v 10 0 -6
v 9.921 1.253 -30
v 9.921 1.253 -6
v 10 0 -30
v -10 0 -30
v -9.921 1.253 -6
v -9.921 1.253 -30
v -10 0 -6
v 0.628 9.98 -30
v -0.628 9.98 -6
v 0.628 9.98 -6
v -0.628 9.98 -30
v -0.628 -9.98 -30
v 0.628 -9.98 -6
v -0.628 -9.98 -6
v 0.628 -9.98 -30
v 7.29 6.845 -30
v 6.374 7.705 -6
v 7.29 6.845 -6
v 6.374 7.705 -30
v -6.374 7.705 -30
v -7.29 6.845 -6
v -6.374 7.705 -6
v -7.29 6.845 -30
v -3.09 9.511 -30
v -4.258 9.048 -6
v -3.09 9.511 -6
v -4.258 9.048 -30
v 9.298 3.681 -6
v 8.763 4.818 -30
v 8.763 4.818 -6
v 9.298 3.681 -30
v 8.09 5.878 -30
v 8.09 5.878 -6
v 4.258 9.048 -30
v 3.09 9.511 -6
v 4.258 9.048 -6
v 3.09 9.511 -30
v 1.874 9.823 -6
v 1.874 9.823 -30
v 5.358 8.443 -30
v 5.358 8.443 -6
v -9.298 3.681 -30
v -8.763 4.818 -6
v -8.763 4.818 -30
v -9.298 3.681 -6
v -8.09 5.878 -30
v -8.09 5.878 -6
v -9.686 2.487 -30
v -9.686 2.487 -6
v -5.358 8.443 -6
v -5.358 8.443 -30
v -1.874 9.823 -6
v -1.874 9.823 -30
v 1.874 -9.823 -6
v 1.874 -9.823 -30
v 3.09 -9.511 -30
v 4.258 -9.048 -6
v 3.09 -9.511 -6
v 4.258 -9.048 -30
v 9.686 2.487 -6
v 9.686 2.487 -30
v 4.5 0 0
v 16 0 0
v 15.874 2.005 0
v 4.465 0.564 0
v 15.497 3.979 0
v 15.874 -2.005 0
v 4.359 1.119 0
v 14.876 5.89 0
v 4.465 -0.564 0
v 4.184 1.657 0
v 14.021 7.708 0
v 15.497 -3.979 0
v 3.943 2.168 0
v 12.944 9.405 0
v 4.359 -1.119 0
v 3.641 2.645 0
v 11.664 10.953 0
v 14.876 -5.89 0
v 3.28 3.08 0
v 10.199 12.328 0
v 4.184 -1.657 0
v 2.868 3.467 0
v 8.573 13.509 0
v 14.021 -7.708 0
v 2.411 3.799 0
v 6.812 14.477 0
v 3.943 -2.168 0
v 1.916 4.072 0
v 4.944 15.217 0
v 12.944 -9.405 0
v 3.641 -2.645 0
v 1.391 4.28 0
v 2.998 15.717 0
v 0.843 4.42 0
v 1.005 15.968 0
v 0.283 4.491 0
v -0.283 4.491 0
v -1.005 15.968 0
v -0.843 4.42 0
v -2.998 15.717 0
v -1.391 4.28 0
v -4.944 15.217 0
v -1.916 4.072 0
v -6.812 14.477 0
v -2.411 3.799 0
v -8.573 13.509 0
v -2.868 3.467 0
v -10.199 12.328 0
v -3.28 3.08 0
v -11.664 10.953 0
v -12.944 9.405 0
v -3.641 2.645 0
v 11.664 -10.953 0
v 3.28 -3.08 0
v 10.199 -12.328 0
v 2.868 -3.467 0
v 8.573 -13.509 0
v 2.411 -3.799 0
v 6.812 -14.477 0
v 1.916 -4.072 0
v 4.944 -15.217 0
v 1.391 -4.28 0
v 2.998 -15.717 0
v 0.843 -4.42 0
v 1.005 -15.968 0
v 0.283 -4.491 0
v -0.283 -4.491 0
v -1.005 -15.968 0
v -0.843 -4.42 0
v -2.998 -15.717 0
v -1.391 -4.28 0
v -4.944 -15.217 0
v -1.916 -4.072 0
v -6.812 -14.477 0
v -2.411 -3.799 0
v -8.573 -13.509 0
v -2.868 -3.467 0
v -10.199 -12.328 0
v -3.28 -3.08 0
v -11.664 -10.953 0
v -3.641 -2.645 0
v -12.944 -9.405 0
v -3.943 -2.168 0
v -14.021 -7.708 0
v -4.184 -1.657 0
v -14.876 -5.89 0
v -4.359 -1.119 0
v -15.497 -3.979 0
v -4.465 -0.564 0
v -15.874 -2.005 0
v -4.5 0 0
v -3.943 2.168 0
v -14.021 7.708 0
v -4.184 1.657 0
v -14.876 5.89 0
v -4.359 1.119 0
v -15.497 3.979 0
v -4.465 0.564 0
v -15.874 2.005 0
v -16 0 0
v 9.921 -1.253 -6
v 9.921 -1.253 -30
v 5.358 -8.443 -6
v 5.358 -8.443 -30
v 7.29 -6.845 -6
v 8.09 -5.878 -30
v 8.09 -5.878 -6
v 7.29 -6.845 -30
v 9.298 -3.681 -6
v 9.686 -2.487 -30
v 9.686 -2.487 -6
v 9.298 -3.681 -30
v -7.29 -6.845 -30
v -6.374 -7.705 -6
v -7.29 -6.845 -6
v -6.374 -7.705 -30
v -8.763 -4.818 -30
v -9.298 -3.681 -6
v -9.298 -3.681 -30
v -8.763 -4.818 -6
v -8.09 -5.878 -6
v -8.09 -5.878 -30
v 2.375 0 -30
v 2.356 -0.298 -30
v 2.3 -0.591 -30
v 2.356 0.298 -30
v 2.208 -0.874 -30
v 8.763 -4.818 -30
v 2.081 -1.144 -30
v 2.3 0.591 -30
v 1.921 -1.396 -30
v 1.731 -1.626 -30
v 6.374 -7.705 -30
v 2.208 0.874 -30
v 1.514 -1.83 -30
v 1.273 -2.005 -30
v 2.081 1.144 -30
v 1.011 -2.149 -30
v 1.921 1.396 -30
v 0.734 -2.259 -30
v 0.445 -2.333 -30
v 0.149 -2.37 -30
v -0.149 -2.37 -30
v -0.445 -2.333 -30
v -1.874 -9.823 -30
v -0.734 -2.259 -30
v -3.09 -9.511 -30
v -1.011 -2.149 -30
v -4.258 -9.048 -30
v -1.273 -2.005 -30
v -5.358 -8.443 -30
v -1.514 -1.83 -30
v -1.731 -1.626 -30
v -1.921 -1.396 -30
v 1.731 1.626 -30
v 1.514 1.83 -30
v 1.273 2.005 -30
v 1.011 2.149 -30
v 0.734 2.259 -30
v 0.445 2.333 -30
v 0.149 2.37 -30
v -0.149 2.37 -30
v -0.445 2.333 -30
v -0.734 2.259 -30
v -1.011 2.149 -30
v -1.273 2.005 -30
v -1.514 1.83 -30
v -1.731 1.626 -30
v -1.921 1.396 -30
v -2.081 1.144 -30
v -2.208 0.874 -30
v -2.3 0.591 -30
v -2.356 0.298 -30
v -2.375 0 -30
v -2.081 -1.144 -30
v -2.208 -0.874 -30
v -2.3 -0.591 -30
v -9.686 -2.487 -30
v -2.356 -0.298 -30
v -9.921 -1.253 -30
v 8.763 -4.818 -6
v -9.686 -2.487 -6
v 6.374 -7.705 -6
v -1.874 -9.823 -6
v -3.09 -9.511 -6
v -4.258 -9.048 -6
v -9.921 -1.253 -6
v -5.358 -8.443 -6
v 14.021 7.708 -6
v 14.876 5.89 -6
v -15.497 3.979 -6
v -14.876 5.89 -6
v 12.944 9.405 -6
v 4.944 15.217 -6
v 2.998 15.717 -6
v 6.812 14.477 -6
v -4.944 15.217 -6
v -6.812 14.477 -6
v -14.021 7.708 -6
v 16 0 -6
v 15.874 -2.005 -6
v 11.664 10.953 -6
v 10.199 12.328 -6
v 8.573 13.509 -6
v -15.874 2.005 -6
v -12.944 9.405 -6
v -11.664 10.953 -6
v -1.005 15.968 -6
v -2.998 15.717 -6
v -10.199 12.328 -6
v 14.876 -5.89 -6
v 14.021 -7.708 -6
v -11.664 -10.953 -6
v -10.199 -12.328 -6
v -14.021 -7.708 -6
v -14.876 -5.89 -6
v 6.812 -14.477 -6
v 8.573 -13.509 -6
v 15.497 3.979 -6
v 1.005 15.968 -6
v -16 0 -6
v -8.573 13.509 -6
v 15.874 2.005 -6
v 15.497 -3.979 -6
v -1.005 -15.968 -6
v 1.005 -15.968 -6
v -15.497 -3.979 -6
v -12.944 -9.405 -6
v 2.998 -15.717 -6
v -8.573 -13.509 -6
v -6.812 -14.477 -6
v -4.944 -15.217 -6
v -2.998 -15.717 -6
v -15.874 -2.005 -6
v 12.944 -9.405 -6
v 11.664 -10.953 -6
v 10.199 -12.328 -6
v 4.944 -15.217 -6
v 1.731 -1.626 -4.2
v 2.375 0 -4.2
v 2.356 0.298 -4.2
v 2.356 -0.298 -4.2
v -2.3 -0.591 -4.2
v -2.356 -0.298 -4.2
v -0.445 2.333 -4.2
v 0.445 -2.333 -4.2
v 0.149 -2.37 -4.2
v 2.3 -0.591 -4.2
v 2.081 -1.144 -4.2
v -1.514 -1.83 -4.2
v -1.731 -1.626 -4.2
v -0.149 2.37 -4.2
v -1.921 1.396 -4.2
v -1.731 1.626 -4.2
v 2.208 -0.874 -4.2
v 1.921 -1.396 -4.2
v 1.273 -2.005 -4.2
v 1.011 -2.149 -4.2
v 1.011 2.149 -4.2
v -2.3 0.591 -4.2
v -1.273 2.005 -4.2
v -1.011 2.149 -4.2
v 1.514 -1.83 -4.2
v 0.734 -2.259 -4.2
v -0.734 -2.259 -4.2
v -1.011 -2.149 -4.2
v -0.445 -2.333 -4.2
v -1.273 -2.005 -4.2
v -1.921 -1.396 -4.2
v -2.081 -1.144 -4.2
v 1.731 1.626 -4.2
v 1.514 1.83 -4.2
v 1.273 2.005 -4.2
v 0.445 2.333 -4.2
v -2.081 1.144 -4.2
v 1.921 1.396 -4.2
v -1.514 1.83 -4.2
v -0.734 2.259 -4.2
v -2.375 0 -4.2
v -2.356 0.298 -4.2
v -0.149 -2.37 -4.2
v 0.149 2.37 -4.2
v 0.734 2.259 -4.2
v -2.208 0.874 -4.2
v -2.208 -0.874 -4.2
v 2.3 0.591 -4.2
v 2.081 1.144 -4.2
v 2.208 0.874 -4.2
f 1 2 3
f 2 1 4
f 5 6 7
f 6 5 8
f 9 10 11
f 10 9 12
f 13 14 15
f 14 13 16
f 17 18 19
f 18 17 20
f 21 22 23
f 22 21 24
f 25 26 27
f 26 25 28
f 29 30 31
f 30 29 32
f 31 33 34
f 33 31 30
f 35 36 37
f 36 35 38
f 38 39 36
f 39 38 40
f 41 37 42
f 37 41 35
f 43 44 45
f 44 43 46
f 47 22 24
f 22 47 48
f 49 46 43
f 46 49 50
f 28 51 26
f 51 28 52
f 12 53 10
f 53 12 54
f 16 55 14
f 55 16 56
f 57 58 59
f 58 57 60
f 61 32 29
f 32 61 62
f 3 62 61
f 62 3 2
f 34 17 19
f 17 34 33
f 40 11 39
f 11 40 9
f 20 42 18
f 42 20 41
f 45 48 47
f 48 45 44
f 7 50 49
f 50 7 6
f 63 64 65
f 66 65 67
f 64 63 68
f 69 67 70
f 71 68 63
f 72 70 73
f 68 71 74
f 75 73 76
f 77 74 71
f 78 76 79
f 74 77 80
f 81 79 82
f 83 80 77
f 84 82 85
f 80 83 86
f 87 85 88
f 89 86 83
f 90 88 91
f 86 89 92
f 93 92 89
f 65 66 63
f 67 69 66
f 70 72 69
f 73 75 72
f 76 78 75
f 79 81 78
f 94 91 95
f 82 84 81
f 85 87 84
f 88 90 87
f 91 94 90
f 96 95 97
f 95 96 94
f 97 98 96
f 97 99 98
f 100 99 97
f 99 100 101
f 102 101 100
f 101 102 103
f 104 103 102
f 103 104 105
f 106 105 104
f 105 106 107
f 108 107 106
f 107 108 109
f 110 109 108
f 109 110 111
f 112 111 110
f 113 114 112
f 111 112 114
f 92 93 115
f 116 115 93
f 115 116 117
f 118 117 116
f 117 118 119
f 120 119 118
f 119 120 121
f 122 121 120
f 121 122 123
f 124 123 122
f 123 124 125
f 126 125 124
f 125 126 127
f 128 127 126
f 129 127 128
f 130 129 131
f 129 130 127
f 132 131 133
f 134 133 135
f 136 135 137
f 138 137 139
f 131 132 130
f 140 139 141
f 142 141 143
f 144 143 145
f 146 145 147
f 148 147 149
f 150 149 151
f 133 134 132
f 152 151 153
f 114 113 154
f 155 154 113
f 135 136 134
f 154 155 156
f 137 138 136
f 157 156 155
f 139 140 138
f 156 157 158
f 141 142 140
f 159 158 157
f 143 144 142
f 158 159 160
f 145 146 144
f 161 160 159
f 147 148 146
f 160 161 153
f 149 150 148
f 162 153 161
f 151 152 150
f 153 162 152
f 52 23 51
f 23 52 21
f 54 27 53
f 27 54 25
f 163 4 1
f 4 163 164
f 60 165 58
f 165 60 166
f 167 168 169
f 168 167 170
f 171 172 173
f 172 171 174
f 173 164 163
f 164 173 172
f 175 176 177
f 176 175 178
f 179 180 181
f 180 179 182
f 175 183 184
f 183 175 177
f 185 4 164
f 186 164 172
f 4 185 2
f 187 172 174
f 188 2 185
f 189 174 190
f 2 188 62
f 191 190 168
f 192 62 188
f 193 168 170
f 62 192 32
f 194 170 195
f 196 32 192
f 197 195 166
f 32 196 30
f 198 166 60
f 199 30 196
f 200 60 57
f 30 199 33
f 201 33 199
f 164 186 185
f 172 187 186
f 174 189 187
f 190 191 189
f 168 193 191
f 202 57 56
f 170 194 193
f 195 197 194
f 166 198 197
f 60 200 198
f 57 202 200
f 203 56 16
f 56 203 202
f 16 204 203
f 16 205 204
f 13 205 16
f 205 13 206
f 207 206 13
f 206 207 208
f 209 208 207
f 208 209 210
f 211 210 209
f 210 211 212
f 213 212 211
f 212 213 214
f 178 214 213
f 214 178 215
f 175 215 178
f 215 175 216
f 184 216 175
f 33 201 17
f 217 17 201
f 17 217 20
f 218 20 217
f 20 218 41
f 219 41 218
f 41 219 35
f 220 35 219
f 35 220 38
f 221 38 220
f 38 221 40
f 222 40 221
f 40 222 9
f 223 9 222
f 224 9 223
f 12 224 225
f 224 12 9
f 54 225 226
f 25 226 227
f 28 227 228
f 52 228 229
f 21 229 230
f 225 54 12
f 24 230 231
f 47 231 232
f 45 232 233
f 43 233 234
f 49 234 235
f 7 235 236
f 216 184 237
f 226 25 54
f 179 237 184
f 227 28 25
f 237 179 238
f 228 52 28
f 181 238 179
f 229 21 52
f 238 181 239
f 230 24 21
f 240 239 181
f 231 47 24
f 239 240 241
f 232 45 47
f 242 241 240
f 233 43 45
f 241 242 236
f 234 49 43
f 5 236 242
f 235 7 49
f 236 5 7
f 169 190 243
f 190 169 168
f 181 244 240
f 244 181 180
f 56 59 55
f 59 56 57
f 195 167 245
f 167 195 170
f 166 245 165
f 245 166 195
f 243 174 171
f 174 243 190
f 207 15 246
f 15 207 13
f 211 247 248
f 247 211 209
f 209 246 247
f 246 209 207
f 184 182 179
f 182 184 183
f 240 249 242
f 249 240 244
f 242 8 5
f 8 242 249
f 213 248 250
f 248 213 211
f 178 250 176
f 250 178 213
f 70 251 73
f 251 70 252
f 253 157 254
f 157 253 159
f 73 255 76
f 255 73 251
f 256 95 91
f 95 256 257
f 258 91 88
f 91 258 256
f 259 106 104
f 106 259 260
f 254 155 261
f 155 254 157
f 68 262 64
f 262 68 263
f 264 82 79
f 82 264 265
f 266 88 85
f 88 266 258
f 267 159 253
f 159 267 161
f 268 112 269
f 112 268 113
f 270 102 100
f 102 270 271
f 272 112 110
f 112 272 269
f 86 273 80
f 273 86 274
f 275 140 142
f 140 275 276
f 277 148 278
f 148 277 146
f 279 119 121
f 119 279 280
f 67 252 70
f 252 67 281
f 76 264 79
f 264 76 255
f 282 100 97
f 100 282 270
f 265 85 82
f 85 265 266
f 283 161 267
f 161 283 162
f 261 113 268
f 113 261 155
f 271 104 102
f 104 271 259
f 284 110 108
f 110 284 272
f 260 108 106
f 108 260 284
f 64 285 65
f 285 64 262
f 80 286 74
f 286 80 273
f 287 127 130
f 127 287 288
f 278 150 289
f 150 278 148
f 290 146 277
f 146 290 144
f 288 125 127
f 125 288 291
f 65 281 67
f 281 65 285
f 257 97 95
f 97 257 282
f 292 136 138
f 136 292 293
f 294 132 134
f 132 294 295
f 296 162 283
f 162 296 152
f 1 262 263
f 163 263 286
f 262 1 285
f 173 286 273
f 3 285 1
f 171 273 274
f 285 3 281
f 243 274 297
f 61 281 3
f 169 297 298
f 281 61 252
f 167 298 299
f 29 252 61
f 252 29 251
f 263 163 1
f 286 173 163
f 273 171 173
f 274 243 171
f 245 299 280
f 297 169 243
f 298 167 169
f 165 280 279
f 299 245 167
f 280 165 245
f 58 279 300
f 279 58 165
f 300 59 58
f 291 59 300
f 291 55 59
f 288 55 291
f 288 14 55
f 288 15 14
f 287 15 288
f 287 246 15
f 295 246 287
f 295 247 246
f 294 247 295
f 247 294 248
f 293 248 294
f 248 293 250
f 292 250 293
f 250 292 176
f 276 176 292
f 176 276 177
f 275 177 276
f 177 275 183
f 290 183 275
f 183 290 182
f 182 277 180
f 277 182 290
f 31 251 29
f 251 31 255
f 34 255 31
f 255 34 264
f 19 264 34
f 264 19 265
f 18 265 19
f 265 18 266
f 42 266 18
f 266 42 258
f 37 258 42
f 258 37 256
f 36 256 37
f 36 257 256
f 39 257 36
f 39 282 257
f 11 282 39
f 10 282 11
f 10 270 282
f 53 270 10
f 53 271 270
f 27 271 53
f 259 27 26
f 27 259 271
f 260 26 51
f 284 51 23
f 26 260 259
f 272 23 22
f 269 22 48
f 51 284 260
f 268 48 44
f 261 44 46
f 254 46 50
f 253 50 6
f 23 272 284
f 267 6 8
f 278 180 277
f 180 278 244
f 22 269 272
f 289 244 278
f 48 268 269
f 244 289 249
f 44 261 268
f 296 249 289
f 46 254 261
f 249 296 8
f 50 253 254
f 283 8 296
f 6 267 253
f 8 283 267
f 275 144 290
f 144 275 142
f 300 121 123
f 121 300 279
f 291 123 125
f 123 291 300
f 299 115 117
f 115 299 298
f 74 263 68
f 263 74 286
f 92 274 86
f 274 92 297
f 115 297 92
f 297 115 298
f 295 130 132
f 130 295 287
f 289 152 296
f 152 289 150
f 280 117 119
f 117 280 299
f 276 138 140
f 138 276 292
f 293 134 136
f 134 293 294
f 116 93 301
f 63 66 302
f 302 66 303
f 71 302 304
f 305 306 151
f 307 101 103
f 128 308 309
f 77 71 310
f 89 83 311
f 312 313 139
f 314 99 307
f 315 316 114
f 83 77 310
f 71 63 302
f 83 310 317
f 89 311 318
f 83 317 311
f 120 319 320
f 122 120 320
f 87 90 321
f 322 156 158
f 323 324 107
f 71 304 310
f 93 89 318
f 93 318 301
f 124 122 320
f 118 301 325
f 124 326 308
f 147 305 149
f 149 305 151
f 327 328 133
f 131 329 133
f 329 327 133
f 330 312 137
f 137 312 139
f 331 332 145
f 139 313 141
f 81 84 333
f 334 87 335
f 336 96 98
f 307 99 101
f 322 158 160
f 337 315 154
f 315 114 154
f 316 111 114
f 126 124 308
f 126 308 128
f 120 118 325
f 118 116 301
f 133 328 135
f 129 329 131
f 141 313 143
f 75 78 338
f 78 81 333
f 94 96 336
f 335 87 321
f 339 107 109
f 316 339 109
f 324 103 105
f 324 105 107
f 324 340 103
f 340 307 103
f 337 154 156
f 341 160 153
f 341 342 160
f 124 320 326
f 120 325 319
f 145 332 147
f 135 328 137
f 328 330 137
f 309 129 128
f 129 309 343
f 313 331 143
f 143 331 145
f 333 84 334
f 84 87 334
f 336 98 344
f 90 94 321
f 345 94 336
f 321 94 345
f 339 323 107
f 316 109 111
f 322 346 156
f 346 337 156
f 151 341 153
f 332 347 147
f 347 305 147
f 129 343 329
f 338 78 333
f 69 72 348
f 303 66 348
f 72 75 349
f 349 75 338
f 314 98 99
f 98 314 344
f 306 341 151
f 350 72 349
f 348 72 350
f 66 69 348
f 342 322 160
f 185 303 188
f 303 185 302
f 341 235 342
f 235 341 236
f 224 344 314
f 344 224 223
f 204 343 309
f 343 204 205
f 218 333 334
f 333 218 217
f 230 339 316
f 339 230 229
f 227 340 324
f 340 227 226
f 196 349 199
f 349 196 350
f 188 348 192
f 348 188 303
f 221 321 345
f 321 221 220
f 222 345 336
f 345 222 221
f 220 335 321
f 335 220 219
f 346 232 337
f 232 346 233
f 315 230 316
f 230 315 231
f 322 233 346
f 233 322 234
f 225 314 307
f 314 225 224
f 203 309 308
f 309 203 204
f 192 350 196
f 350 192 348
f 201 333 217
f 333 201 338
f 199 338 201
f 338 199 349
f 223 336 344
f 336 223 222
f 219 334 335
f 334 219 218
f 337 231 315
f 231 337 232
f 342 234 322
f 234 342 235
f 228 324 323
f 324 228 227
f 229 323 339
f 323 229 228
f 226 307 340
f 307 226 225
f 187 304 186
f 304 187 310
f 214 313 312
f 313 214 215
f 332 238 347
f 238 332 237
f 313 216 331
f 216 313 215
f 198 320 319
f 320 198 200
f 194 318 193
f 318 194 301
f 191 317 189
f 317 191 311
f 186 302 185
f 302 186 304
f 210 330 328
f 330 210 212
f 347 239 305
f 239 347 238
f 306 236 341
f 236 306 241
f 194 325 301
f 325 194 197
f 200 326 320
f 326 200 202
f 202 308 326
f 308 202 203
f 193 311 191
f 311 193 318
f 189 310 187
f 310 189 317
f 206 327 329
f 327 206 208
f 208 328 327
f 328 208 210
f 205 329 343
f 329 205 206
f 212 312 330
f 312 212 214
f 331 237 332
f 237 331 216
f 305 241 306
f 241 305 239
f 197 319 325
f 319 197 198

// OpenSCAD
$fn = 50;


difference() {
	union() {
		translate(v = [0, 0, -30.0000000000]) {
			cylinder(h = 30, r = 10.0000000000);
		}
		translate(v = [0, 0, -6.0000000000]) {
			cylinder(h = 6, r = 16.0000000000);
		}
	}
	union() {
		translate(v = [0, 0, 0]) {
			rotate(a = [0, 0, 0]) {
				difference() {
					union() {
						#translate(v = [0, 0, -30.0000000000]) {
							cylinder(h = 30, r = 2.2500000000);
						}
						#translate(v = [0, 0, -4.2000000000]) {
							cylinder(h = 4.2000000000, r = 10.0000000000, r1 = 2.3750000000, r2 = 4.5000000000);
						}
						#translate(v = [0, 0, -30.0000000000]) {
							cylinder(h = 30, r = 2.3750000000);
						}
						#translate(v = [0, 0, -30.0000000000]) {
							cylinder(h = 30, r = 2.2500000000);
						}
					}
					union();
				}
			}
		}
	}
}
